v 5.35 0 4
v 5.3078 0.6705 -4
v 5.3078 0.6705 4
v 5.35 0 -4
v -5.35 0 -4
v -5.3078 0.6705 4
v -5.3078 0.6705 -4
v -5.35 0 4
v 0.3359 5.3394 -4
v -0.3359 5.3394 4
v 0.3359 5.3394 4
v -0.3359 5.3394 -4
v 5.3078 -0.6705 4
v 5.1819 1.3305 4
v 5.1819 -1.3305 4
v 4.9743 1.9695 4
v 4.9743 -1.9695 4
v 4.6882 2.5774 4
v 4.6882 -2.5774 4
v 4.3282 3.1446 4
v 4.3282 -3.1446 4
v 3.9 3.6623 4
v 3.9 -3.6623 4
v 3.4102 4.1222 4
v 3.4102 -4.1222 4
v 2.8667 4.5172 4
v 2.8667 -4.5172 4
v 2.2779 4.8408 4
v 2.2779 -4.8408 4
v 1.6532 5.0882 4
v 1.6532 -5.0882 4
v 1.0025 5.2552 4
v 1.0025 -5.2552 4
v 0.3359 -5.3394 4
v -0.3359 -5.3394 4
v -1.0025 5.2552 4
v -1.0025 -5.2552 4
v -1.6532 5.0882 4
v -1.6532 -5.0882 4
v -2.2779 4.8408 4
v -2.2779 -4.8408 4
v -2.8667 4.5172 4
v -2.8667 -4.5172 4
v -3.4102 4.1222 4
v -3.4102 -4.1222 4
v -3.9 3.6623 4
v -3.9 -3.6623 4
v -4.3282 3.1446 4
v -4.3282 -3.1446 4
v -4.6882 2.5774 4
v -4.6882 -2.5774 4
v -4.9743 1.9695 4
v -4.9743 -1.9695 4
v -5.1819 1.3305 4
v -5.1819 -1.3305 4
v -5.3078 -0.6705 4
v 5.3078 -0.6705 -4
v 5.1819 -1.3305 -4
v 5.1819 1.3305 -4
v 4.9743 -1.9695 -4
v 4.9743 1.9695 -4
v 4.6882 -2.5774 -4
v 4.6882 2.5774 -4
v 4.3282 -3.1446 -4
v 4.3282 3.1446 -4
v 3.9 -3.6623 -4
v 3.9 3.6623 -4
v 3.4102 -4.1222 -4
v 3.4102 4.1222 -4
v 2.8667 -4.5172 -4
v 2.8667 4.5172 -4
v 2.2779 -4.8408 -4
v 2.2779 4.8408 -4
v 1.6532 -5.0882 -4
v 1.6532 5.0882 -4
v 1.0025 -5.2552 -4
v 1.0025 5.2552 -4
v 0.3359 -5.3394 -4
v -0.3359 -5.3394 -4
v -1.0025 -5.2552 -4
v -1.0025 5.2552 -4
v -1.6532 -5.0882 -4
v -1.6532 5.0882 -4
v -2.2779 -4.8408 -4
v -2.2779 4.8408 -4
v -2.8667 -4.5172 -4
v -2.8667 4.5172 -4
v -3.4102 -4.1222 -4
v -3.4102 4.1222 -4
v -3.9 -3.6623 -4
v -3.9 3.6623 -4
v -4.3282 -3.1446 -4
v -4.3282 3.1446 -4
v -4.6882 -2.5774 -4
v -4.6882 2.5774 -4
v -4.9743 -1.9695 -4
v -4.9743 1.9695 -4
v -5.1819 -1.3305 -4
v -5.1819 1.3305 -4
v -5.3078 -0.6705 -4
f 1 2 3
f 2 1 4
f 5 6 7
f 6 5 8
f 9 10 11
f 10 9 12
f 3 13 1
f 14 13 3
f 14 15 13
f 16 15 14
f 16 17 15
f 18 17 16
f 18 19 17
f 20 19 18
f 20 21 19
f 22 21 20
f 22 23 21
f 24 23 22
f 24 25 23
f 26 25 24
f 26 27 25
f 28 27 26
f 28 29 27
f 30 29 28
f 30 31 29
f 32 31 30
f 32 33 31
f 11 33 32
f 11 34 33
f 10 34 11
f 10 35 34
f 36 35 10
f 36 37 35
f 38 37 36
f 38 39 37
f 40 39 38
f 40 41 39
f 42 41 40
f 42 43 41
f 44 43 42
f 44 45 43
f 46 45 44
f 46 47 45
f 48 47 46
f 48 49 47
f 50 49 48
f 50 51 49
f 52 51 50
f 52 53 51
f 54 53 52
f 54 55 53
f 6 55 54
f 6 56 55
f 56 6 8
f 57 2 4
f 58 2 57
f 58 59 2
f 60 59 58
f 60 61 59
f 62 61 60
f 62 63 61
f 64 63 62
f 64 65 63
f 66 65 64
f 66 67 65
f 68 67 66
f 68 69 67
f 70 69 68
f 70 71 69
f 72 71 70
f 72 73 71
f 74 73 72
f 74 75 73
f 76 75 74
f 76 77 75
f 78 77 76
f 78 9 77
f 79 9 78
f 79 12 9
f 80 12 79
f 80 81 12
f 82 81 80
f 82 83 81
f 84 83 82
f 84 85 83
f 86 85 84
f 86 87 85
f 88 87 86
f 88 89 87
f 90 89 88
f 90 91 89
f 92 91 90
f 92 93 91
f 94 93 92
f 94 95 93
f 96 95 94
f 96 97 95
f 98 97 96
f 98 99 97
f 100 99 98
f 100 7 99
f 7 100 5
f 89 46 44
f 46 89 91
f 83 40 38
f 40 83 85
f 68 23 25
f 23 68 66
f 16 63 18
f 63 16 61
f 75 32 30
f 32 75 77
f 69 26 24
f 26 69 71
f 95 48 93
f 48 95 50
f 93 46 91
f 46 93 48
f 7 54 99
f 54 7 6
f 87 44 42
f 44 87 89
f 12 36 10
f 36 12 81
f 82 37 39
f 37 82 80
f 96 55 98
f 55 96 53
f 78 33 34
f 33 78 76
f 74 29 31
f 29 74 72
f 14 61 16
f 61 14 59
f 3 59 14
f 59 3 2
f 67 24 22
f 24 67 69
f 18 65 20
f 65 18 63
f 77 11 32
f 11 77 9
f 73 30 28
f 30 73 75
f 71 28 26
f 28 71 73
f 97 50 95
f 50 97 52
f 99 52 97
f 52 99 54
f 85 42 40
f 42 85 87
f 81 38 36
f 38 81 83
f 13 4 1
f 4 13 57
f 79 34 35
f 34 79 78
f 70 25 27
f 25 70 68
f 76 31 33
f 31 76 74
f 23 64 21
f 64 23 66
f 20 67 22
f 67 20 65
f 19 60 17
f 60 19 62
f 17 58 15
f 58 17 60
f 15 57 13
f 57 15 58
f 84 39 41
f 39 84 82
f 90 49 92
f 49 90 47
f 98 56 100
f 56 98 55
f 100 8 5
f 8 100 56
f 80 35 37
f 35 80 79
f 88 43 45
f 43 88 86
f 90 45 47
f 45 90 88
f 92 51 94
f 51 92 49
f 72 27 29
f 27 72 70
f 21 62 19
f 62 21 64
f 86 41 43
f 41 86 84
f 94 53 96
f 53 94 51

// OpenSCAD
$fn = 50;


difference() {
	union() {
		translate(v = [0, 0, -4.0000000000]) {
			cylinder(h = 8, r = 5.3500000000);
		}
	}
	union() {
		translate(v = [0, 0, -100.0000000000]) {
			cylinder(h = 200, r = 0);
		}
	}
}
